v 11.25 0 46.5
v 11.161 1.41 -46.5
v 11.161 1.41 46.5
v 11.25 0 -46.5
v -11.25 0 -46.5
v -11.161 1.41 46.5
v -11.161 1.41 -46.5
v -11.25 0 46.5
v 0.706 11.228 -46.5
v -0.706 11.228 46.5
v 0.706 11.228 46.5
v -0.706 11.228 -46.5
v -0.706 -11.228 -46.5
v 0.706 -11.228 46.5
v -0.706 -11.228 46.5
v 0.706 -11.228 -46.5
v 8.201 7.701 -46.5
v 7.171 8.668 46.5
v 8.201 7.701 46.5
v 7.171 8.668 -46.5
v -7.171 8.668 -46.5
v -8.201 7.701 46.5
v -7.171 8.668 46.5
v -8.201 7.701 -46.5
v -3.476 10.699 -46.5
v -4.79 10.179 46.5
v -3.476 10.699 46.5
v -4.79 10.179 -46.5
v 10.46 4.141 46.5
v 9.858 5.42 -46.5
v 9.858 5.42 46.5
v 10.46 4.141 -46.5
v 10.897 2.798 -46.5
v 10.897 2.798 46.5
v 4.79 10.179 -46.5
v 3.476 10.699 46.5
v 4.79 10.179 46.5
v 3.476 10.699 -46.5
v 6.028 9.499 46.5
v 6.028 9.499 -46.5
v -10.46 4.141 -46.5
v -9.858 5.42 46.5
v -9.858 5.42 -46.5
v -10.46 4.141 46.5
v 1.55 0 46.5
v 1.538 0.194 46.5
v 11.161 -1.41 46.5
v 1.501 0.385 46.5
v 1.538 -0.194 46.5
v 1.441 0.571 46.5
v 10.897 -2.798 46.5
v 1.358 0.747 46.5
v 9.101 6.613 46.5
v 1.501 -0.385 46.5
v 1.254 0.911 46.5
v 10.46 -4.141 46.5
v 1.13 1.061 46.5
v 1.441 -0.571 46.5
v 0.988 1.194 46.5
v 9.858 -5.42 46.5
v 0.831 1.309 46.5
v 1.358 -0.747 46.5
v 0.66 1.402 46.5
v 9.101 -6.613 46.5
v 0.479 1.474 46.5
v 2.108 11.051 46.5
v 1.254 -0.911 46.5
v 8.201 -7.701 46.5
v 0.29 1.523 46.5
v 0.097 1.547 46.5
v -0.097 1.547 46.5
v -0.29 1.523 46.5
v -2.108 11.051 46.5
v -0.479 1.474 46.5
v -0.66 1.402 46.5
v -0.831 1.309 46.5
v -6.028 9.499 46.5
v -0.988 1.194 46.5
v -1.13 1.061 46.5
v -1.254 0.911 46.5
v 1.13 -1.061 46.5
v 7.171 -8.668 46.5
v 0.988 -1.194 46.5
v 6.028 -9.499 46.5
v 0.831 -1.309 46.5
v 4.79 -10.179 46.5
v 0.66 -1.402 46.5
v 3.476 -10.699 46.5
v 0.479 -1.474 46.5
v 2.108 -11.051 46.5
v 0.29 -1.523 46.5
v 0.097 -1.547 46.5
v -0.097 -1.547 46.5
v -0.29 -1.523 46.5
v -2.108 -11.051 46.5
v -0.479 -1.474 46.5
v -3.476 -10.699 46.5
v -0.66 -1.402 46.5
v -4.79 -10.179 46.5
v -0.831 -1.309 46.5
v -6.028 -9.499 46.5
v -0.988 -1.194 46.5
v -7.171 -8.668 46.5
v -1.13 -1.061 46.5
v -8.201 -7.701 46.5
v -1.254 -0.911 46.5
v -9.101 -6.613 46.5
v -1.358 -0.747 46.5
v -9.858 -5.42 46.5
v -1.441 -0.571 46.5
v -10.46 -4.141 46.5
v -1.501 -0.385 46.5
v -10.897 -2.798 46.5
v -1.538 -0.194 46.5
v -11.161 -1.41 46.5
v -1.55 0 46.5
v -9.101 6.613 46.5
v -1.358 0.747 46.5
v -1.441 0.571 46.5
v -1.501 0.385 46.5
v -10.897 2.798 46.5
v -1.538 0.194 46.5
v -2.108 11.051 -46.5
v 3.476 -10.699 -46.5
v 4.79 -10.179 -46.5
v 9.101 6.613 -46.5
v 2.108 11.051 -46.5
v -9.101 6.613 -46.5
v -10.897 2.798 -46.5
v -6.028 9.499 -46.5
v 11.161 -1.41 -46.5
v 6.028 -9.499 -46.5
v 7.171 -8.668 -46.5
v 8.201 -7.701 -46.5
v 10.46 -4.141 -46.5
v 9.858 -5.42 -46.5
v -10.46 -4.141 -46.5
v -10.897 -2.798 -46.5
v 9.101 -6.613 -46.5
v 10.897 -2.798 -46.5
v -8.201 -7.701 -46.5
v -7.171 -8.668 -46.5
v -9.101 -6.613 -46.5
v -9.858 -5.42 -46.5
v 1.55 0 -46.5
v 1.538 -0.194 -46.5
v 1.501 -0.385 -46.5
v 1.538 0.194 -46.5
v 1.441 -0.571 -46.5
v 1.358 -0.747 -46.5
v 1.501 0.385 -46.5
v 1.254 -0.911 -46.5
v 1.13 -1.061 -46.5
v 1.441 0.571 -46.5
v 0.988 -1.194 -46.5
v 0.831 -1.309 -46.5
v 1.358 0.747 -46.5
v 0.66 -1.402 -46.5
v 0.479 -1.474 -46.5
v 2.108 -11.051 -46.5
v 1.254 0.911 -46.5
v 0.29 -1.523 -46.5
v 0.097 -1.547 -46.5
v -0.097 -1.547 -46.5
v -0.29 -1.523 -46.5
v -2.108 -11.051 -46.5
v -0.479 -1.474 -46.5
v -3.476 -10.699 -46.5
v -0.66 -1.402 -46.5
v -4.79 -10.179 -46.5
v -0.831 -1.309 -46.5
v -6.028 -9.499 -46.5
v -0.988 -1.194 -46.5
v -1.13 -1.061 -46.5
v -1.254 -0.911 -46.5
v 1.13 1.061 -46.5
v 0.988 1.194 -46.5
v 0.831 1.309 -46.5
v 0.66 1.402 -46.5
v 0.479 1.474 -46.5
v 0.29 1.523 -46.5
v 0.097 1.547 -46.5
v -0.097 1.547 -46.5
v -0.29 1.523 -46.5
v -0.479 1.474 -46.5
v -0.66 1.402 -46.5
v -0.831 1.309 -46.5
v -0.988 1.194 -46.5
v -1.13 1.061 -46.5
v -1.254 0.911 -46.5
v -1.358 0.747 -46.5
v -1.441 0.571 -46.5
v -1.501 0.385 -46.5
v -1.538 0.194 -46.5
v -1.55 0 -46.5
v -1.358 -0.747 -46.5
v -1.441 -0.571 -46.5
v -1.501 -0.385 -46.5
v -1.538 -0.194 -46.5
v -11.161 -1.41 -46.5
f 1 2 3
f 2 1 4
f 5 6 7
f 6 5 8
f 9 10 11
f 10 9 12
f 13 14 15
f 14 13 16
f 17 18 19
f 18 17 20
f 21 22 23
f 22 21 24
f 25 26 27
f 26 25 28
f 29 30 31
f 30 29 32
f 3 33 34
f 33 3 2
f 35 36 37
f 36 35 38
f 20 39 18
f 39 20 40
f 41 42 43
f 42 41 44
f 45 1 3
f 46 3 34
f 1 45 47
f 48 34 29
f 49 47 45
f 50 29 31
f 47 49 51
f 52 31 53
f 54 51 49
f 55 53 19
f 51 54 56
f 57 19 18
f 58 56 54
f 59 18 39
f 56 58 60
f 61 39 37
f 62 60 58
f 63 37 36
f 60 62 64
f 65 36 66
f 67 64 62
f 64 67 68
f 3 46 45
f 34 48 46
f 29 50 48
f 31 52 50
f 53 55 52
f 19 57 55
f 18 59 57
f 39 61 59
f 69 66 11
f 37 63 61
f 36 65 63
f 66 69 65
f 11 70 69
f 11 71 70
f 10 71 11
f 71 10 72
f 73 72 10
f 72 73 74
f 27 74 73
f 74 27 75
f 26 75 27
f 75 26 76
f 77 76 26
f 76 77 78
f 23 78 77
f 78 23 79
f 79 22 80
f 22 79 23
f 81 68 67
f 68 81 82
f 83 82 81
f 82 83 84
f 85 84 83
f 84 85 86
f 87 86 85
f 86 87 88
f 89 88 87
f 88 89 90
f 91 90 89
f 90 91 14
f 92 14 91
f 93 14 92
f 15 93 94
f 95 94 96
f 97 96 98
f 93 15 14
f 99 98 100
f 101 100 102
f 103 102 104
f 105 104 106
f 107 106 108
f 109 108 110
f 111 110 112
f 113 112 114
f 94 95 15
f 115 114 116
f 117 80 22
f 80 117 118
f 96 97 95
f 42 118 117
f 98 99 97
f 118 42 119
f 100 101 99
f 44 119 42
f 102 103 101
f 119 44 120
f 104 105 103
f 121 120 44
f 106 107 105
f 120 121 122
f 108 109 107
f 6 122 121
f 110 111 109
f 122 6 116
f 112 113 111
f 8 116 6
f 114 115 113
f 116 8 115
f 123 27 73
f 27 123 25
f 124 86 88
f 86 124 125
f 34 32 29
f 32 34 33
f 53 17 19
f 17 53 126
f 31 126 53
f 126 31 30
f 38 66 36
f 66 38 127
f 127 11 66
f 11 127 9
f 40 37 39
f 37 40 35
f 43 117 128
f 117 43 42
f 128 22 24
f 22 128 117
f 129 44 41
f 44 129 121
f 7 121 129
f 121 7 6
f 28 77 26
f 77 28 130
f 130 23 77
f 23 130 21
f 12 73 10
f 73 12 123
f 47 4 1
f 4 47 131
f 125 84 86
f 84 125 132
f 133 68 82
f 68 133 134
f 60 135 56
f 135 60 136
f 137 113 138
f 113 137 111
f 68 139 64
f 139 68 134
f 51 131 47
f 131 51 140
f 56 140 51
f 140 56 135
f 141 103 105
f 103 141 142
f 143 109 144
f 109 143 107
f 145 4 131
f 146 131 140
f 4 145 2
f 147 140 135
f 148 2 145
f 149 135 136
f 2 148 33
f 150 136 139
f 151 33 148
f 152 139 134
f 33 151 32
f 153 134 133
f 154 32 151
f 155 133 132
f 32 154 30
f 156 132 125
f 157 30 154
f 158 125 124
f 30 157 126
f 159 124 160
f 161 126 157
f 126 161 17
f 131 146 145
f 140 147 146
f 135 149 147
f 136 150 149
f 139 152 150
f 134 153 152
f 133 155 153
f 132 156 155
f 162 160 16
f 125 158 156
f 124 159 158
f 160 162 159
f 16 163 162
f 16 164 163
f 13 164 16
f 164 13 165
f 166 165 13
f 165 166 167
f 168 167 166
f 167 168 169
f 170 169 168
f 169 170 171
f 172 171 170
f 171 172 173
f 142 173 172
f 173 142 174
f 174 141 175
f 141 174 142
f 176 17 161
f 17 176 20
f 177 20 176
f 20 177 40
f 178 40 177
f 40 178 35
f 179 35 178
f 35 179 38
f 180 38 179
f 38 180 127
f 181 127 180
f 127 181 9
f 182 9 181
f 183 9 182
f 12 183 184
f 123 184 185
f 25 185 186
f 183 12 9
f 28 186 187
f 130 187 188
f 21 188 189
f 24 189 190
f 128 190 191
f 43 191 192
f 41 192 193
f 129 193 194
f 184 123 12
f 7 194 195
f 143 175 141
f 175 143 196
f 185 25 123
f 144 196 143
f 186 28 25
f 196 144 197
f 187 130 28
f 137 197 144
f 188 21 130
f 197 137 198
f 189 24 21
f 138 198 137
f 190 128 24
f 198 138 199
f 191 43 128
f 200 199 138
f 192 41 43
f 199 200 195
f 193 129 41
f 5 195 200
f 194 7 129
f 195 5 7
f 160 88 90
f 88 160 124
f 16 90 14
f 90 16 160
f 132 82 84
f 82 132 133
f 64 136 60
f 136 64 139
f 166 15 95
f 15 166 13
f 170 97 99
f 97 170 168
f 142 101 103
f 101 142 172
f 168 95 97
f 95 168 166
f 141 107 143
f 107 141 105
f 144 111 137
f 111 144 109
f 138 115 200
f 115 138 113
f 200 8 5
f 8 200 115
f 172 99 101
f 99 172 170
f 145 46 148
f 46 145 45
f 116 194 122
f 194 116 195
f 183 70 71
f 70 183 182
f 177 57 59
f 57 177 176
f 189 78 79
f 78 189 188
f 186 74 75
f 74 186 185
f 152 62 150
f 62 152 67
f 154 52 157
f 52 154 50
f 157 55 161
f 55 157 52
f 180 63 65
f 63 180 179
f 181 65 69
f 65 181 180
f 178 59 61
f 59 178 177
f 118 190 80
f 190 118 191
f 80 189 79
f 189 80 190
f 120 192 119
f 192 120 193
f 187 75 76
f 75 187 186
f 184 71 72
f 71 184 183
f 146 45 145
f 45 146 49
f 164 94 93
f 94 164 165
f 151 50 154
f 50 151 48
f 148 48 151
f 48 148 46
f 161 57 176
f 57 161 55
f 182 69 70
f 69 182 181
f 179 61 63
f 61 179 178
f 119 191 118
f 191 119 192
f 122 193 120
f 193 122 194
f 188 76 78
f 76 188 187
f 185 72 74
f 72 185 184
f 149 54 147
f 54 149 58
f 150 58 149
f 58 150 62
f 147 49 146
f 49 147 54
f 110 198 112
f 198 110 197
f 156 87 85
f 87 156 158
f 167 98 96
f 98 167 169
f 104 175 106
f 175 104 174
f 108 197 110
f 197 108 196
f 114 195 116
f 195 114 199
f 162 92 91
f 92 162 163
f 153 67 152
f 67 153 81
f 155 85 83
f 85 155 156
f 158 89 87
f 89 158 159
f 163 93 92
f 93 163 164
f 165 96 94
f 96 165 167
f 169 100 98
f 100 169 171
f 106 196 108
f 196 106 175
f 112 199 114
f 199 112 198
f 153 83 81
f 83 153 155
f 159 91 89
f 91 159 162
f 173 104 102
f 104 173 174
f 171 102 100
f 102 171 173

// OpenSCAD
$fn = 50;


difference() {
	union() {
		translate(v = [0, 0, -46.5000000000]) {
			cylinder(h = 93, r = 11.2500000000);
		}
	}
	union() {
		translate(v = [0, 0, -100.0000000000]) {
			cylinder(h = 200, r = 1.5500000000);
		}
	}
}
